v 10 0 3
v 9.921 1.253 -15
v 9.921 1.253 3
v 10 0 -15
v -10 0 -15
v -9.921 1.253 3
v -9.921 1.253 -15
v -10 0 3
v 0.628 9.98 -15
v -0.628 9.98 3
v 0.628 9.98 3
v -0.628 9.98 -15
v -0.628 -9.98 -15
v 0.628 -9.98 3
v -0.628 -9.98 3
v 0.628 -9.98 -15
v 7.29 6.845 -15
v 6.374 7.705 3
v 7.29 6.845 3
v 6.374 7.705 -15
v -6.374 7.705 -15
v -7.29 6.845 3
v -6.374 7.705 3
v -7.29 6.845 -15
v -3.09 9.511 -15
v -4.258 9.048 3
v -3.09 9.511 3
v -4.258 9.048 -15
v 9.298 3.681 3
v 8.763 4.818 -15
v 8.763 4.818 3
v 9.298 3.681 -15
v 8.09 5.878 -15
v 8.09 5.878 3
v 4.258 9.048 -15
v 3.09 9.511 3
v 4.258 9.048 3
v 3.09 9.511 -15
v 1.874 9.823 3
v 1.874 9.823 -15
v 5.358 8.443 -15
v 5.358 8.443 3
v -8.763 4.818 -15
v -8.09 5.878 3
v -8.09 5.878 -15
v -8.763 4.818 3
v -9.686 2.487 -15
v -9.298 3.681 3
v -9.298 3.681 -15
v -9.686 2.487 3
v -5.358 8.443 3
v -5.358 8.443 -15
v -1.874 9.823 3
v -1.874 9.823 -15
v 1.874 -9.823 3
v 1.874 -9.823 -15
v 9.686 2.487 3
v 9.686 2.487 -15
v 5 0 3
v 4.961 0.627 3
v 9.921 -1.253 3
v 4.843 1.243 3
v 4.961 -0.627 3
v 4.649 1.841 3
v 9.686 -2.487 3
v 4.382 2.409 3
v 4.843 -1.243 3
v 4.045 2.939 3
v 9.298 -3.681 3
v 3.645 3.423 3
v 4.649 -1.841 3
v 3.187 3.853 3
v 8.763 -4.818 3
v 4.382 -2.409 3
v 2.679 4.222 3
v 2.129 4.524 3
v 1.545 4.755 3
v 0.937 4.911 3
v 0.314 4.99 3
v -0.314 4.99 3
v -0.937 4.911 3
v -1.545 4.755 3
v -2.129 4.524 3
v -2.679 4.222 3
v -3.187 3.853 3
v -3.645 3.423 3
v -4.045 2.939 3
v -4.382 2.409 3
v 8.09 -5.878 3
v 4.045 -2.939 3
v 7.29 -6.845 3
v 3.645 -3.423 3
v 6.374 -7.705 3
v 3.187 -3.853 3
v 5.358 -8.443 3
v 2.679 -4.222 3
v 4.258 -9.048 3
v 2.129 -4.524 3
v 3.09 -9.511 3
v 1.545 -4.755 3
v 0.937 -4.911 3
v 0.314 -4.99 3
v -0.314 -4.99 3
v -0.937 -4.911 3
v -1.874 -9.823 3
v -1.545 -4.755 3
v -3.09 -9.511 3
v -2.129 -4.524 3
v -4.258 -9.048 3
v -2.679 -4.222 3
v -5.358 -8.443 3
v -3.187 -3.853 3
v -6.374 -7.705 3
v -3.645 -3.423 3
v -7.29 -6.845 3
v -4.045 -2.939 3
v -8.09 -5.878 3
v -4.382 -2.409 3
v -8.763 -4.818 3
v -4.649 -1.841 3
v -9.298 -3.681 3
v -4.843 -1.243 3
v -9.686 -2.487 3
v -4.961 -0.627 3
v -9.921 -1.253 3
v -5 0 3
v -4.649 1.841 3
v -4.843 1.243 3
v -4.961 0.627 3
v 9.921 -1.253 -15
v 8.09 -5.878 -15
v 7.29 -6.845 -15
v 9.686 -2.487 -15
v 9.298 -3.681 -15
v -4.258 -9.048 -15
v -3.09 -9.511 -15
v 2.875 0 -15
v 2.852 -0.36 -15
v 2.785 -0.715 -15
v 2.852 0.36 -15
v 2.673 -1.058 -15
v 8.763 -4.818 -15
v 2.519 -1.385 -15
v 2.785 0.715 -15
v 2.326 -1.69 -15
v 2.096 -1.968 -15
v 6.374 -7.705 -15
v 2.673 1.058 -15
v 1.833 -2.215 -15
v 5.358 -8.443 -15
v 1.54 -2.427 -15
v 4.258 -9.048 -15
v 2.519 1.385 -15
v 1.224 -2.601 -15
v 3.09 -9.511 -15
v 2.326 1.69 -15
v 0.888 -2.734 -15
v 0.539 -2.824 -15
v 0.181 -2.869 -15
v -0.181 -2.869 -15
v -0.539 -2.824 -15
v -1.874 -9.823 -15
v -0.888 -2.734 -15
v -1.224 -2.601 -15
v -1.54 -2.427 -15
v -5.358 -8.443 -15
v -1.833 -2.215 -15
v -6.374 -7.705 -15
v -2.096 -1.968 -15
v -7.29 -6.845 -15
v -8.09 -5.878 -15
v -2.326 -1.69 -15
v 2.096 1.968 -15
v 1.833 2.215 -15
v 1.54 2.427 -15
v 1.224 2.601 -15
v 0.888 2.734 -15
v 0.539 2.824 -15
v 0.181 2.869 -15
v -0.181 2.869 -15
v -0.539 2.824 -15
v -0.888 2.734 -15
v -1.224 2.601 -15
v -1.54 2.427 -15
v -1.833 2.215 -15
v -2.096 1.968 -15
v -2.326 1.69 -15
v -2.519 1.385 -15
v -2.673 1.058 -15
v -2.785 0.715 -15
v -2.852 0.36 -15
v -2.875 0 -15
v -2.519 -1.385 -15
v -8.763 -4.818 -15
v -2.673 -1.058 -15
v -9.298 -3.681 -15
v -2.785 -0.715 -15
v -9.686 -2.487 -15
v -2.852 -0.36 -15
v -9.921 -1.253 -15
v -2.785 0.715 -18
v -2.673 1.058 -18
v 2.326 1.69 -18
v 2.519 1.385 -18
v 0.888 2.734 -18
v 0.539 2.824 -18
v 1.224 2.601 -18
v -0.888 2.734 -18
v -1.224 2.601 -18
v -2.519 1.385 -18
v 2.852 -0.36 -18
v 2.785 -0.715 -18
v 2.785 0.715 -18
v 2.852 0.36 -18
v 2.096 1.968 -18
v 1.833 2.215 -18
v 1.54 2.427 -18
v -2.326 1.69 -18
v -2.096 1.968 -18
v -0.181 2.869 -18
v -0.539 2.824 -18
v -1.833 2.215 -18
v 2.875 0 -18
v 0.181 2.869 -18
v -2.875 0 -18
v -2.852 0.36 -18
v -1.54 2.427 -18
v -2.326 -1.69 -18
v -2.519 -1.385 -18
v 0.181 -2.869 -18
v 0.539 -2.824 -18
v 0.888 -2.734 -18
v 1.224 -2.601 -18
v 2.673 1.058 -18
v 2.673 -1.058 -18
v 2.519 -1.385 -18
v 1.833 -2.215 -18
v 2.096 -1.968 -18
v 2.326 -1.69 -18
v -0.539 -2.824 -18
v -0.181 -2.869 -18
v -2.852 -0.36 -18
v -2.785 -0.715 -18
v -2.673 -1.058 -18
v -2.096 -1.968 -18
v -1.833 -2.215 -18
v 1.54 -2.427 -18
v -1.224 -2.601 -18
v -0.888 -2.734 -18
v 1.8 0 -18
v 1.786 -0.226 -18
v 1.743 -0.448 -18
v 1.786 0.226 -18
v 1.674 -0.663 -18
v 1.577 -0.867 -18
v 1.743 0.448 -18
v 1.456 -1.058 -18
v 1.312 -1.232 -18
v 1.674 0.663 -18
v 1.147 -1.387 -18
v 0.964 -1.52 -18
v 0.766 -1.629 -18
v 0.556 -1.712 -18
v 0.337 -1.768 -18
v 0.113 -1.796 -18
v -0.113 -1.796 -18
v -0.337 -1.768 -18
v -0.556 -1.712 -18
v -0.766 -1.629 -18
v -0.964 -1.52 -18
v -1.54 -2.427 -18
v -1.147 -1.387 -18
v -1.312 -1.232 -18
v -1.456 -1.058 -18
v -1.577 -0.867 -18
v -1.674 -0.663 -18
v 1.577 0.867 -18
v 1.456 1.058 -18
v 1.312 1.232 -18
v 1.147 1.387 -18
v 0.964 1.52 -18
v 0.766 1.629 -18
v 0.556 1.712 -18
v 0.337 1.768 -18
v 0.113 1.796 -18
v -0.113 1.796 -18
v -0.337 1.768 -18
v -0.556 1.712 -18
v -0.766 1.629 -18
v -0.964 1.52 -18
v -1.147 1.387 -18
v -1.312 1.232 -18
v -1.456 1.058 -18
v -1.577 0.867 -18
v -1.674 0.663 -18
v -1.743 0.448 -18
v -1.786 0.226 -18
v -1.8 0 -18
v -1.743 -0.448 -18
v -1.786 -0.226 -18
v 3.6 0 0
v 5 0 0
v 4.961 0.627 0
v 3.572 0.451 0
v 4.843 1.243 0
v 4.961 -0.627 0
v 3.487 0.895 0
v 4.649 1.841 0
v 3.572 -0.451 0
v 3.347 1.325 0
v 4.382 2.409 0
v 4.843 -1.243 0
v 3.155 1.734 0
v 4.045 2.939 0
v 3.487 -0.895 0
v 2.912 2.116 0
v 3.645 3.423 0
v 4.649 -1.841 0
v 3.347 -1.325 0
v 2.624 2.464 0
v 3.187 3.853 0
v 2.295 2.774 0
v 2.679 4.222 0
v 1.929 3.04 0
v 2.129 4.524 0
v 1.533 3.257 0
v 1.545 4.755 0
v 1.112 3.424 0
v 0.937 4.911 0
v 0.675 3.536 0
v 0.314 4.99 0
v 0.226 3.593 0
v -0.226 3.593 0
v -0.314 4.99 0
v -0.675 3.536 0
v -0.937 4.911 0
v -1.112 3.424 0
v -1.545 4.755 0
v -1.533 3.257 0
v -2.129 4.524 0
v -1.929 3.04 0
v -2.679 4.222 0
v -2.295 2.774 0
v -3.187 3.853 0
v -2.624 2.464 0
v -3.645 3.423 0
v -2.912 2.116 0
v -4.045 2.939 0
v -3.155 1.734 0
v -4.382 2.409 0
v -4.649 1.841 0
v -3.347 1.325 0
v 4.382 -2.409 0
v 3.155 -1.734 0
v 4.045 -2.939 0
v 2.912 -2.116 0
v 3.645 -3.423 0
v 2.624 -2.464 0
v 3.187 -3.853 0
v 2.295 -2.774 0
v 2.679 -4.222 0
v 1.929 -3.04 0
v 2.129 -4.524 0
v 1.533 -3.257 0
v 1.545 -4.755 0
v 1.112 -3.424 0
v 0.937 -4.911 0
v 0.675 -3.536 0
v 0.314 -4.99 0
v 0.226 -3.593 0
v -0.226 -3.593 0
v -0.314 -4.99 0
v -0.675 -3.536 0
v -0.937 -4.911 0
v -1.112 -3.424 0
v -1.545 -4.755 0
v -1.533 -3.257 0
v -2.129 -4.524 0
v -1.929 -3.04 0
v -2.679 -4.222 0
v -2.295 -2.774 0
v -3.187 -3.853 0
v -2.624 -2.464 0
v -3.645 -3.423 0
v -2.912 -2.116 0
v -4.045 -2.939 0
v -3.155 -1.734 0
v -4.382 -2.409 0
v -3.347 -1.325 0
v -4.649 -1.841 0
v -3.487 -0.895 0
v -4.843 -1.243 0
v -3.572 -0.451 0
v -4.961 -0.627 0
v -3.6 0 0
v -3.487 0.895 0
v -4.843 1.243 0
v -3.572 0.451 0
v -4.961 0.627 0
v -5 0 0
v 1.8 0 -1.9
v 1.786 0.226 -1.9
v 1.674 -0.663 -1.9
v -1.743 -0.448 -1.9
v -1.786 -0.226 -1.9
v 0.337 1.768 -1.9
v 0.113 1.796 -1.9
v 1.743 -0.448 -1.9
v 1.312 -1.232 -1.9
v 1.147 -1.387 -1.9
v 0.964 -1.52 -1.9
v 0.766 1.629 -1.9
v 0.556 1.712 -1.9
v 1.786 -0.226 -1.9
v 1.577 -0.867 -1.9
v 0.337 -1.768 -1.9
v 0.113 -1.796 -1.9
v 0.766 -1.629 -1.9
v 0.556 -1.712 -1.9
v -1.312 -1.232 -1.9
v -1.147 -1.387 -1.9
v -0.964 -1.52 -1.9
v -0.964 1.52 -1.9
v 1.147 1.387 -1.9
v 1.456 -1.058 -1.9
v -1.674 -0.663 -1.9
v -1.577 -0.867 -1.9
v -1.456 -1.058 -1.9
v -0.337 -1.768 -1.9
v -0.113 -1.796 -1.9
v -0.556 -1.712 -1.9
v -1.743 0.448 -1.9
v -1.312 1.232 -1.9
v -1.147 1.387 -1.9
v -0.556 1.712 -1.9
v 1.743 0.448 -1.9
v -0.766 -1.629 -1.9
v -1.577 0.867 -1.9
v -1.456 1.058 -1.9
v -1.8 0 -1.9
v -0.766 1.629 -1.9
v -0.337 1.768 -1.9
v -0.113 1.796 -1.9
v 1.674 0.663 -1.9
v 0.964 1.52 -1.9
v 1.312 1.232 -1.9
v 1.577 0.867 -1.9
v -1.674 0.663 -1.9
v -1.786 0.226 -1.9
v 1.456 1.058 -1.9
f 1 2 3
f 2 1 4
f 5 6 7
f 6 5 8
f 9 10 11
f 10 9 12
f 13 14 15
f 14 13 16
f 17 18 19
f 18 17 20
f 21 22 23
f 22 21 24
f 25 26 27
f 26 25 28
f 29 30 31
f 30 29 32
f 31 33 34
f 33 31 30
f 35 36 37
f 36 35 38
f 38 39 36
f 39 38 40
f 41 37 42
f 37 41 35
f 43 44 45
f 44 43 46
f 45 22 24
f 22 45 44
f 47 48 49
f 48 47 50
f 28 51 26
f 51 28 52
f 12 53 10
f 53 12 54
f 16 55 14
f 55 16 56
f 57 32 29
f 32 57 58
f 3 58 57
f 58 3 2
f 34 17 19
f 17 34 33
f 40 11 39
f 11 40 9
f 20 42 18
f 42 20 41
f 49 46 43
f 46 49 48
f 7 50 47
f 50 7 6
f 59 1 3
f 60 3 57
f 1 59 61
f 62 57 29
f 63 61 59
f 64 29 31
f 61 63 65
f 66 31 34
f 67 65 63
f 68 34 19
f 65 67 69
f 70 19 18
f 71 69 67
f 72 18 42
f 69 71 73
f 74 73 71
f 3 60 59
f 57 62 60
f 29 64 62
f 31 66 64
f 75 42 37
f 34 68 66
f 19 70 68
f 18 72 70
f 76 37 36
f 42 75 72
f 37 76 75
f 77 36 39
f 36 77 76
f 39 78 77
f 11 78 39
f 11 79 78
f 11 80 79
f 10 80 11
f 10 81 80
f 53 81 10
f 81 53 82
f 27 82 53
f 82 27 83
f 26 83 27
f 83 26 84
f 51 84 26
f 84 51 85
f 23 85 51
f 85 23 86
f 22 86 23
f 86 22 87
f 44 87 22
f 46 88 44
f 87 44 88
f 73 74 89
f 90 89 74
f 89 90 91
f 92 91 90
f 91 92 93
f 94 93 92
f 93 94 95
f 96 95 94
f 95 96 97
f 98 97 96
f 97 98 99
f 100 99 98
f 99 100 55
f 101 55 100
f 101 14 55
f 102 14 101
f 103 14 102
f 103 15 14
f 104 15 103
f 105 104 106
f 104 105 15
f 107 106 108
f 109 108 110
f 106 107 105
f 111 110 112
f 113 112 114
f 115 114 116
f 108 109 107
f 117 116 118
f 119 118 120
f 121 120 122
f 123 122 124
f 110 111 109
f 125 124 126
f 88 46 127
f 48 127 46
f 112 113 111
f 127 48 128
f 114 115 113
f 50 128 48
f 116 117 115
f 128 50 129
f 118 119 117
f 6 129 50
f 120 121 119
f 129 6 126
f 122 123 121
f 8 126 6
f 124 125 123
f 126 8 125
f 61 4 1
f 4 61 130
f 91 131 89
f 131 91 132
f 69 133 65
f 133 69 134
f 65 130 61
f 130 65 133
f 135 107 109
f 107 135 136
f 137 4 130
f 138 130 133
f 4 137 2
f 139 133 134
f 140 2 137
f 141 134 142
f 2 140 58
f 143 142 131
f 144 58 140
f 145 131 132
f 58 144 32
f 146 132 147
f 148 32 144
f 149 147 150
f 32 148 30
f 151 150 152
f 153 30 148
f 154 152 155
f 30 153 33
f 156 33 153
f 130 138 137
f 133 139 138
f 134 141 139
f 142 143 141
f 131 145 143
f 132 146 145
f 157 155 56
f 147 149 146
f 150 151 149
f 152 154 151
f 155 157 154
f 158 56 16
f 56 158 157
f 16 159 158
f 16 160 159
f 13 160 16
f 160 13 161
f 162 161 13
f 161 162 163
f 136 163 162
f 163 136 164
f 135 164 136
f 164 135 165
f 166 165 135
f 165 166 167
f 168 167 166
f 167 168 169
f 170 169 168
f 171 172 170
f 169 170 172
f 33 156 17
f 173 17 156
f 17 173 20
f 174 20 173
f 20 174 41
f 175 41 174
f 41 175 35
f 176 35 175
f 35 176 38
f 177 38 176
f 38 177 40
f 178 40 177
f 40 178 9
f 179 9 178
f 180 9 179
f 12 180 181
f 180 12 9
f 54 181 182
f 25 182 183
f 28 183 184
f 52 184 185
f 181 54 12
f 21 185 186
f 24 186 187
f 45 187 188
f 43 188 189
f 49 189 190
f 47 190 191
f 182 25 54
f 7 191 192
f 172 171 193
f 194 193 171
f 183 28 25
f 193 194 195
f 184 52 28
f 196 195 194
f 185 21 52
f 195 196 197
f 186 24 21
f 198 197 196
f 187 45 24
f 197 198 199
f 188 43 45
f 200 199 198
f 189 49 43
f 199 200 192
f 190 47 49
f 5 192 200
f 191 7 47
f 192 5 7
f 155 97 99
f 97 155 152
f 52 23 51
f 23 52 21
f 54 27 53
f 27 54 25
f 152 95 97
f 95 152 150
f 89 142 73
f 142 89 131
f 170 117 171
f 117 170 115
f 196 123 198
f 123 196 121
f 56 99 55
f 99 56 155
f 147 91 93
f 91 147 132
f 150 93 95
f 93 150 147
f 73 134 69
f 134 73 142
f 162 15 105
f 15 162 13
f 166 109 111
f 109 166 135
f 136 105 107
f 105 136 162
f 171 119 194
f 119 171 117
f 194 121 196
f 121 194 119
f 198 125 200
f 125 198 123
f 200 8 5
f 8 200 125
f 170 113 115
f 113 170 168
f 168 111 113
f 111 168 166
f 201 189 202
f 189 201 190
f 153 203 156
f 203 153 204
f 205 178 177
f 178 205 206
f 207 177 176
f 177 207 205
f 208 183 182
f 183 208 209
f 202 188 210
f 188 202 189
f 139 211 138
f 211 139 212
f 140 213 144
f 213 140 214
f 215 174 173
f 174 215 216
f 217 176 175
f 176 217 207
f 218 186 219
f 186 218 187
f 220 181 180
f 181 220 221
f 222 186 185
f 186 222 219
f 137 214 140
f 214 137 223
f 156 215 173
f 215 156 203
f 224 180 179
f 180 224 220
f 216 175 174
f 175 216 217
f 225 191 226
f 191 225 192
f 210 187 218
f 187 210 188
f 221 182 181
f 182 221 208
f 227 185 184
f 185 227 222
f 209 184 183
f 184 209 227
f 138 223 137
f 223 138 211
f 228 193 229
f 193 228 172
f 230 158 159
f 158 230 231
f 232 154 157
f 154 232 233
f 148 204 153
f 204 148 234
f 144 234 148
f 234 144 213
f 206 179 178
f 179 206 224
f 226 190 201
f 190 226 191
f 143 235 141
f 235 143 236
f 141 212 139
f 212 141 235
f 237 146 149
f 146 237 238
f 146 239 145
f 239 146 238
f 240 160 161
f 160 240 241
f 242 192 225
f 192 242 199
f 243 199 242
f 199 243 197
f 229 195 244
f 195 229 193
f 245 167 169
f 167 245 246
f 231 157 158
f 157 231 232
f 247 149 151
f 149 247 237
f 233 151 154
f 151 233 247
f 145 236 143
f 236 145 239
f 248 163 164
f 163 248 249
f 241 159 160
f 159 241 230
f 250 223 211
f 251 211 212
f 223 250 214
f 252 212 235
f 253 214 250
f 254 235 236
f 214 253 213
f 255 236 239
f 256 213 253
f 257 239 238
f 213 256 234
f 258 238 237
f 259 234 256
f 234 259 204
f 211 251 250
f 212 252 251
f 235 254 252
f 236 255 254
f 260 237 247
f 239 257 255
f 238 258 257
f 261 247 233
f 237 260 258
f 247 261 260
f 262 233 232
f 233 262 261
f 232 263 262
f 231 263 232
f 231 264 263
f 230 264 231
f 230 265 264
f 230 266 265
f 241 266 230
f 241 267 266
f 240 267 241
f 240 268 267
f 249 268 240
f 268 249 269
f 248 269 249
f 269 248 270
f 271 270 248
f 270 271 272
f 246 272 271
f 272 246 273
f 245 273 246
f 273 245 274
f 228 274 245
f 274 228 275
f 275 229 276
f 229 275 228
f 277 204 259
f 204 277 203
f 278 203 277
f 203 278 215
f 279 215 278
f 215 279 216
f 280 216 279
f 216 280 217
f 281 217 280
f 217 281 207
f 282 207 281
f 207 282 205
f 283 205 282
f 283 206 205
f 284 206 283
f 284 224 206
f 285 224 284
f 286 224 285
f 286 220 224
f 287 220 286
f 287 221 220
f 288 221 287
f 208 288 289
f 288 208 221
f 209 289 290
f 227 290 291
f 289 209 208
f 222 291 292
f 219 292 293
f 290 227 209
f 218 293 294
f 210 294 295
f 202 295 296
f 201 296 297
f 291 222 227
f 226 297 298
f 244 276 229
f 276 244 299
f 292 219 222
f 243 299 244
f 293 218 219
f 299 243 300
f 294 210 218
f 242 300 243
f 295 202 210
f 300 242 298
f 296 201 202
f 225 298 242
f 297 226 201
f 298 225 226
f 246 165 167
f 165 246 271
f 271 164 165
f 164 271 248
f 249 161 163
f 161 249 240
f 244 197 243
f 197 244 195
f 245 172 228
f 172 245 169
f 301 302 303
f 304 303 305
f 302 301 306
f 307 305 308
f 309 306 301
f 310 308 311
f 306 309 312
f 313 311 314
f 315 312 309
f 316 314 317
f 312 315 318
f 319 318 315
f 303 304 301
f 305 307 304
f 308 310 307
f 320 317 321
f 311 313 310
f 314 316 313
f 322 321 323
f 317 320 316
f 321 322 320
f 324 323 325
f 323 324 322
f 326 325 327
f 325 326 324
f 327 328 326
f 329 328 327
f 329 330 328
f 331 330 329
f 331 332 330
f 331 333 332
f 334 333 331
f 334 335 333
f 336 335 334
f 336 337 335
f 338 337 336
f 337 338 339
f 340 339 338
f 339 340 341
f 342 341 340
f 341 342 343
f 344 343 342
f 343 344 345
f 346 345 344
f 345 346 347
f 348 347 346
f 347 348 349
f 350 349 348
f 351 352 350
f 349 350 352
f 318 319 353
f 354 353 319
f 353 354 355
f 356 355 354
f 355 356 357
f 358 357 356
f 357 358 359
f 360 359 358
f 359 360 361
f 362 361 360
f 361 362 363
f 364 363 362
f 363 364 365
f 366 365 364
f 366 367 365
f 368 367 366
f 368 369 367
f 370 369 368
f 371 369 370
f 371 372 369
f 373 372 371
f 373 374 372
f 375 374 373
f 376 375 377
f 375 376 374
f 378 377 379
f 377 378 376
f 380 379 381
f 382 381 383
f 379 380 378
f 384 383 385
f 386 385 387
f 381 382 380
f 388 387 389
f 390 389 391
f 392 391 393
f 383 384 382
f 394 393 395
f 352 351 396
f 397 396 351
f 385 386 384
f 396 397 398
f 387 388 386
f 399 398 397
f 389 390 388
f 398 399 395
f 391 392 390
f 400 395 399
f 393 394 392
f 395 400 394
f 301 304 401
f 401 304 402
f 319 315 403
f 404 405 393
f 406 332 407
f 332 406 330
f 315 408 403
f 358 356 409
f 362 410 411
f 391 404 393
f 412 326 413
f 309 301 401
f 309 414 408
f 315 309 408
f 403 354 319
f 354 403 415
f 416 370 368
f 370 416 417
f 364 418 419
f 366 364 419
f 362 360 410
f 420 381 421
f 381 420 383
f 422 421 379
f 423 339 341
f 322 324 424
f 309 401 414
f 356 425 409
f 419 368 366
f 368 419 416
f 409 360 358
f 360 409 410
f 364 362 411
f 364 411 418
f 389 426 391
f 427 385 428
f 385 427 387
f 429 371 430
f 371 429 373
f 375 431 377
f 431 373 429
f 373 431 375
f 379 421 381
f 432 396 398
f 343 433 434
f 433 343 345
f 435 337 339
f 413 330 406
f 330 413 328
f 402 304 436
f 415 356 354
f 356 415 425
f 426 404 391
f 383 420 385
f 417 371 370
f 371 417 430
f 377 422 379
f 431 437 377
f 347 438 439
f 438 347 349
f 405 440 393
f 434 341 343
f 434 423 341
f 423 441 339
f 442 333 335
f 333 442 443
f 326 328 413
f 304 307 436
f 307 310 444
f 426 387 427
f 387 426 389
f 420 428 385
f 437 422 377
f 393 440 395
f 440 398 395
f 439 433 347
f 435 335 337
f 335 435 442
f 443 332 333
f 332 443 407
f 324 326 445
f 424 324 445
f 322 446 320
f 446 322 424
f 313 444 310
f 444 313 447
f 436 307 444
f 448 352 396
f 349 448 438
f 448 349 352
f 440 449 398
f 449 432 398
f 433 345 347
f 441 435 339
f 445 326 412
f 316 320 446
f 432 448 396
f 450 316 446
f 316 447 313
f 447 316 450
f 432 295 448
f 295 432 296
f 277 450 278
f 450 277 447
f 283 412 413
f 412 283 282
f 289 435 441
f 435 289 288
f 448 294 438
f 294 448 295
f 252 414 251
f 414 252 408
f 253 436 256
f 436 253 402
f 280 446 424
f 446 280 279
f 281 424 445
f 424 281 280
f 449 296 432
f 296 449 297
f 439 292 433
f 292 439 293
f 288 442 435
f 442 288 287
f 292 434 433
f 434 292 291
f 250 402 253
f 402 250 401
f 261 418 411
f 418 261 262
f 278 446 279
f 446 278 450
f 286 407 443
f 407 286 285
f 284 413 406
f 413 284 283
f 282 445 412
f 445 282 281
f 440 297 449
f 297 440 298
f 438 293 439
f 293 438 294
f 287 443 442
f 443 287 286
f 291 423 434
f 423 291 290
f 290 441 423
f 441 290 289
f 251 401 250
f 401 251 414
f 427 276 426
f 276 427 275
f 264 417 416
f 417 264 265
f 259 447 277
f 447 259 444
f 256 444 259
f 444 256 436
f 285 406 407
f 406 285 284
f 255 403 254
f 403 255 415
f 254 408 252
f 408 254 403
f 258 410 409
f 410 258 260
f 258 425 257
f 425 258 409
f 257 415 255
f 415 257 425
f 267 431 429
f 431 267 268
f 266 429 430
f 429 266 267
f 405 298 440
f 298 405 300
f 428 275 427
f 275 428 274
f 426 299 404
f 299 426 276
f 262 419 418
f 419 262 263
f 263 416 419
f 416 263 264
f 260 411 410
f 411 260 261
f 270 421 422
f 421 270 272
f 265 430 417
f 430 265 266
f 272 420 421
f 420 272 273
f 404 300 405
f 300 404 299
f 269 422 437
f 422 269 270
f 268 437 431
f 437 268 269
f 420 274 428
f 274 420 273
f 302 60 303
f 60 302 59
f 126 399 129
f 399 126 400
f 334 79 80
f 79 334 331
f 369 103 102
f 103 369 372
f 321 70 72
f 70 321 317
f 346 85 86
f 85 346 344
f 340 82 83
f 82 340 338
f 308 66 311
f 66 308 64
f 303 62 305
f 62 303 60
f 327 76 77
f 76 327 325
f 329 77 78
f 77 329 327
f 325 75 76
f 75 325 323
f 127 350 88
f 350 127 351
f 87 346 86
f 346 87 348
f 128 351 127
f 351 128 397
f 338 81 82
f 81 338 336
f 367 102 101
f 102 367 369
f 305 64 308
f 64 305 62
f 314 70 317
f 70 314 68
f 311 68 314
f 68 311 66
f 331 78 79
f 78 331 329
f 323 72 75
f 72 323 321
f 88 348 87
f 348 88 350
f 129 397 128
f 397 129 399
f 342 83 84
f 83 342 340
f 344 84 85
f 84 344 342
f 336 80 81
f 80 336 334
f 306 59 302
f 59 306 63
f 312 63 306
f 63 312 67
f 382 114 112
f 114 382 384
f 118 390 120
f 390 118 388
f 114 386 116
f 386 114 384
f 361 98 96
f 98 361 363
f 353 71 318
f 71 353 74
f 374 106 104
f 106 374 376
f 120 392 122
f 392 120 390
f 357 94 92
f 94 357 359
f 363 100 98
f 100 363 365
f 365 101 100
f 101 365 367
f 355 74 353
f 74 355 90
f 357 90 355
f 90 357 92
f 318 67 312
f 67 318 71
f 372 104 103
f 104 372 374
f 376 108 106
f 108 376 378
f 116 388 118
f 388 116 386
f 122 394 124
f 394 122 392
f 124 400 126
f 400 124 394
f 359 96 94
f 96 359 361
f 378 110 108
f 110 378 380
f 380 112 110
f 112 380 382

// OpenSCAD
$fn = 50;


difference() {
	union() {
		translate(v = [0, 0, -15.0000000000]) {
			cylinder(h = 18, r = 10.0000000000);
		}
		#translate(v = [0, 0, -18.0000000000]) {
			cylinder(h = 18, r = 2.8750000000);
		}
	}
	union() {
		translate(v = [0, 0, 0]) {
			rotate(a = [0, 0, 0]) {
				difference() {
					union() {
						translate(v = [0, 0, -18.0000000000]) {
							cylinder(h = 18, r = 1.5000000000);
						}
						translate(v = [0, 0, -1.9000000000]) {
							cylinder(h = 1.9000000000, r1 = 1.8000000000, r2 = 3.6000000000);
						}
						translate(v = [0, 0, -18.0000000000]) {
							cylinder(h = 18, r = 1.8000000000);
						}
						translate(v = [0, 0, -18.0000000000]) {
							cylinder(h = 18, r = 1.5000000000);
						}
					}
					union();
				}
			}
		}
		#cylinder(h = 3, r = 5.0000000000);
	}
}
